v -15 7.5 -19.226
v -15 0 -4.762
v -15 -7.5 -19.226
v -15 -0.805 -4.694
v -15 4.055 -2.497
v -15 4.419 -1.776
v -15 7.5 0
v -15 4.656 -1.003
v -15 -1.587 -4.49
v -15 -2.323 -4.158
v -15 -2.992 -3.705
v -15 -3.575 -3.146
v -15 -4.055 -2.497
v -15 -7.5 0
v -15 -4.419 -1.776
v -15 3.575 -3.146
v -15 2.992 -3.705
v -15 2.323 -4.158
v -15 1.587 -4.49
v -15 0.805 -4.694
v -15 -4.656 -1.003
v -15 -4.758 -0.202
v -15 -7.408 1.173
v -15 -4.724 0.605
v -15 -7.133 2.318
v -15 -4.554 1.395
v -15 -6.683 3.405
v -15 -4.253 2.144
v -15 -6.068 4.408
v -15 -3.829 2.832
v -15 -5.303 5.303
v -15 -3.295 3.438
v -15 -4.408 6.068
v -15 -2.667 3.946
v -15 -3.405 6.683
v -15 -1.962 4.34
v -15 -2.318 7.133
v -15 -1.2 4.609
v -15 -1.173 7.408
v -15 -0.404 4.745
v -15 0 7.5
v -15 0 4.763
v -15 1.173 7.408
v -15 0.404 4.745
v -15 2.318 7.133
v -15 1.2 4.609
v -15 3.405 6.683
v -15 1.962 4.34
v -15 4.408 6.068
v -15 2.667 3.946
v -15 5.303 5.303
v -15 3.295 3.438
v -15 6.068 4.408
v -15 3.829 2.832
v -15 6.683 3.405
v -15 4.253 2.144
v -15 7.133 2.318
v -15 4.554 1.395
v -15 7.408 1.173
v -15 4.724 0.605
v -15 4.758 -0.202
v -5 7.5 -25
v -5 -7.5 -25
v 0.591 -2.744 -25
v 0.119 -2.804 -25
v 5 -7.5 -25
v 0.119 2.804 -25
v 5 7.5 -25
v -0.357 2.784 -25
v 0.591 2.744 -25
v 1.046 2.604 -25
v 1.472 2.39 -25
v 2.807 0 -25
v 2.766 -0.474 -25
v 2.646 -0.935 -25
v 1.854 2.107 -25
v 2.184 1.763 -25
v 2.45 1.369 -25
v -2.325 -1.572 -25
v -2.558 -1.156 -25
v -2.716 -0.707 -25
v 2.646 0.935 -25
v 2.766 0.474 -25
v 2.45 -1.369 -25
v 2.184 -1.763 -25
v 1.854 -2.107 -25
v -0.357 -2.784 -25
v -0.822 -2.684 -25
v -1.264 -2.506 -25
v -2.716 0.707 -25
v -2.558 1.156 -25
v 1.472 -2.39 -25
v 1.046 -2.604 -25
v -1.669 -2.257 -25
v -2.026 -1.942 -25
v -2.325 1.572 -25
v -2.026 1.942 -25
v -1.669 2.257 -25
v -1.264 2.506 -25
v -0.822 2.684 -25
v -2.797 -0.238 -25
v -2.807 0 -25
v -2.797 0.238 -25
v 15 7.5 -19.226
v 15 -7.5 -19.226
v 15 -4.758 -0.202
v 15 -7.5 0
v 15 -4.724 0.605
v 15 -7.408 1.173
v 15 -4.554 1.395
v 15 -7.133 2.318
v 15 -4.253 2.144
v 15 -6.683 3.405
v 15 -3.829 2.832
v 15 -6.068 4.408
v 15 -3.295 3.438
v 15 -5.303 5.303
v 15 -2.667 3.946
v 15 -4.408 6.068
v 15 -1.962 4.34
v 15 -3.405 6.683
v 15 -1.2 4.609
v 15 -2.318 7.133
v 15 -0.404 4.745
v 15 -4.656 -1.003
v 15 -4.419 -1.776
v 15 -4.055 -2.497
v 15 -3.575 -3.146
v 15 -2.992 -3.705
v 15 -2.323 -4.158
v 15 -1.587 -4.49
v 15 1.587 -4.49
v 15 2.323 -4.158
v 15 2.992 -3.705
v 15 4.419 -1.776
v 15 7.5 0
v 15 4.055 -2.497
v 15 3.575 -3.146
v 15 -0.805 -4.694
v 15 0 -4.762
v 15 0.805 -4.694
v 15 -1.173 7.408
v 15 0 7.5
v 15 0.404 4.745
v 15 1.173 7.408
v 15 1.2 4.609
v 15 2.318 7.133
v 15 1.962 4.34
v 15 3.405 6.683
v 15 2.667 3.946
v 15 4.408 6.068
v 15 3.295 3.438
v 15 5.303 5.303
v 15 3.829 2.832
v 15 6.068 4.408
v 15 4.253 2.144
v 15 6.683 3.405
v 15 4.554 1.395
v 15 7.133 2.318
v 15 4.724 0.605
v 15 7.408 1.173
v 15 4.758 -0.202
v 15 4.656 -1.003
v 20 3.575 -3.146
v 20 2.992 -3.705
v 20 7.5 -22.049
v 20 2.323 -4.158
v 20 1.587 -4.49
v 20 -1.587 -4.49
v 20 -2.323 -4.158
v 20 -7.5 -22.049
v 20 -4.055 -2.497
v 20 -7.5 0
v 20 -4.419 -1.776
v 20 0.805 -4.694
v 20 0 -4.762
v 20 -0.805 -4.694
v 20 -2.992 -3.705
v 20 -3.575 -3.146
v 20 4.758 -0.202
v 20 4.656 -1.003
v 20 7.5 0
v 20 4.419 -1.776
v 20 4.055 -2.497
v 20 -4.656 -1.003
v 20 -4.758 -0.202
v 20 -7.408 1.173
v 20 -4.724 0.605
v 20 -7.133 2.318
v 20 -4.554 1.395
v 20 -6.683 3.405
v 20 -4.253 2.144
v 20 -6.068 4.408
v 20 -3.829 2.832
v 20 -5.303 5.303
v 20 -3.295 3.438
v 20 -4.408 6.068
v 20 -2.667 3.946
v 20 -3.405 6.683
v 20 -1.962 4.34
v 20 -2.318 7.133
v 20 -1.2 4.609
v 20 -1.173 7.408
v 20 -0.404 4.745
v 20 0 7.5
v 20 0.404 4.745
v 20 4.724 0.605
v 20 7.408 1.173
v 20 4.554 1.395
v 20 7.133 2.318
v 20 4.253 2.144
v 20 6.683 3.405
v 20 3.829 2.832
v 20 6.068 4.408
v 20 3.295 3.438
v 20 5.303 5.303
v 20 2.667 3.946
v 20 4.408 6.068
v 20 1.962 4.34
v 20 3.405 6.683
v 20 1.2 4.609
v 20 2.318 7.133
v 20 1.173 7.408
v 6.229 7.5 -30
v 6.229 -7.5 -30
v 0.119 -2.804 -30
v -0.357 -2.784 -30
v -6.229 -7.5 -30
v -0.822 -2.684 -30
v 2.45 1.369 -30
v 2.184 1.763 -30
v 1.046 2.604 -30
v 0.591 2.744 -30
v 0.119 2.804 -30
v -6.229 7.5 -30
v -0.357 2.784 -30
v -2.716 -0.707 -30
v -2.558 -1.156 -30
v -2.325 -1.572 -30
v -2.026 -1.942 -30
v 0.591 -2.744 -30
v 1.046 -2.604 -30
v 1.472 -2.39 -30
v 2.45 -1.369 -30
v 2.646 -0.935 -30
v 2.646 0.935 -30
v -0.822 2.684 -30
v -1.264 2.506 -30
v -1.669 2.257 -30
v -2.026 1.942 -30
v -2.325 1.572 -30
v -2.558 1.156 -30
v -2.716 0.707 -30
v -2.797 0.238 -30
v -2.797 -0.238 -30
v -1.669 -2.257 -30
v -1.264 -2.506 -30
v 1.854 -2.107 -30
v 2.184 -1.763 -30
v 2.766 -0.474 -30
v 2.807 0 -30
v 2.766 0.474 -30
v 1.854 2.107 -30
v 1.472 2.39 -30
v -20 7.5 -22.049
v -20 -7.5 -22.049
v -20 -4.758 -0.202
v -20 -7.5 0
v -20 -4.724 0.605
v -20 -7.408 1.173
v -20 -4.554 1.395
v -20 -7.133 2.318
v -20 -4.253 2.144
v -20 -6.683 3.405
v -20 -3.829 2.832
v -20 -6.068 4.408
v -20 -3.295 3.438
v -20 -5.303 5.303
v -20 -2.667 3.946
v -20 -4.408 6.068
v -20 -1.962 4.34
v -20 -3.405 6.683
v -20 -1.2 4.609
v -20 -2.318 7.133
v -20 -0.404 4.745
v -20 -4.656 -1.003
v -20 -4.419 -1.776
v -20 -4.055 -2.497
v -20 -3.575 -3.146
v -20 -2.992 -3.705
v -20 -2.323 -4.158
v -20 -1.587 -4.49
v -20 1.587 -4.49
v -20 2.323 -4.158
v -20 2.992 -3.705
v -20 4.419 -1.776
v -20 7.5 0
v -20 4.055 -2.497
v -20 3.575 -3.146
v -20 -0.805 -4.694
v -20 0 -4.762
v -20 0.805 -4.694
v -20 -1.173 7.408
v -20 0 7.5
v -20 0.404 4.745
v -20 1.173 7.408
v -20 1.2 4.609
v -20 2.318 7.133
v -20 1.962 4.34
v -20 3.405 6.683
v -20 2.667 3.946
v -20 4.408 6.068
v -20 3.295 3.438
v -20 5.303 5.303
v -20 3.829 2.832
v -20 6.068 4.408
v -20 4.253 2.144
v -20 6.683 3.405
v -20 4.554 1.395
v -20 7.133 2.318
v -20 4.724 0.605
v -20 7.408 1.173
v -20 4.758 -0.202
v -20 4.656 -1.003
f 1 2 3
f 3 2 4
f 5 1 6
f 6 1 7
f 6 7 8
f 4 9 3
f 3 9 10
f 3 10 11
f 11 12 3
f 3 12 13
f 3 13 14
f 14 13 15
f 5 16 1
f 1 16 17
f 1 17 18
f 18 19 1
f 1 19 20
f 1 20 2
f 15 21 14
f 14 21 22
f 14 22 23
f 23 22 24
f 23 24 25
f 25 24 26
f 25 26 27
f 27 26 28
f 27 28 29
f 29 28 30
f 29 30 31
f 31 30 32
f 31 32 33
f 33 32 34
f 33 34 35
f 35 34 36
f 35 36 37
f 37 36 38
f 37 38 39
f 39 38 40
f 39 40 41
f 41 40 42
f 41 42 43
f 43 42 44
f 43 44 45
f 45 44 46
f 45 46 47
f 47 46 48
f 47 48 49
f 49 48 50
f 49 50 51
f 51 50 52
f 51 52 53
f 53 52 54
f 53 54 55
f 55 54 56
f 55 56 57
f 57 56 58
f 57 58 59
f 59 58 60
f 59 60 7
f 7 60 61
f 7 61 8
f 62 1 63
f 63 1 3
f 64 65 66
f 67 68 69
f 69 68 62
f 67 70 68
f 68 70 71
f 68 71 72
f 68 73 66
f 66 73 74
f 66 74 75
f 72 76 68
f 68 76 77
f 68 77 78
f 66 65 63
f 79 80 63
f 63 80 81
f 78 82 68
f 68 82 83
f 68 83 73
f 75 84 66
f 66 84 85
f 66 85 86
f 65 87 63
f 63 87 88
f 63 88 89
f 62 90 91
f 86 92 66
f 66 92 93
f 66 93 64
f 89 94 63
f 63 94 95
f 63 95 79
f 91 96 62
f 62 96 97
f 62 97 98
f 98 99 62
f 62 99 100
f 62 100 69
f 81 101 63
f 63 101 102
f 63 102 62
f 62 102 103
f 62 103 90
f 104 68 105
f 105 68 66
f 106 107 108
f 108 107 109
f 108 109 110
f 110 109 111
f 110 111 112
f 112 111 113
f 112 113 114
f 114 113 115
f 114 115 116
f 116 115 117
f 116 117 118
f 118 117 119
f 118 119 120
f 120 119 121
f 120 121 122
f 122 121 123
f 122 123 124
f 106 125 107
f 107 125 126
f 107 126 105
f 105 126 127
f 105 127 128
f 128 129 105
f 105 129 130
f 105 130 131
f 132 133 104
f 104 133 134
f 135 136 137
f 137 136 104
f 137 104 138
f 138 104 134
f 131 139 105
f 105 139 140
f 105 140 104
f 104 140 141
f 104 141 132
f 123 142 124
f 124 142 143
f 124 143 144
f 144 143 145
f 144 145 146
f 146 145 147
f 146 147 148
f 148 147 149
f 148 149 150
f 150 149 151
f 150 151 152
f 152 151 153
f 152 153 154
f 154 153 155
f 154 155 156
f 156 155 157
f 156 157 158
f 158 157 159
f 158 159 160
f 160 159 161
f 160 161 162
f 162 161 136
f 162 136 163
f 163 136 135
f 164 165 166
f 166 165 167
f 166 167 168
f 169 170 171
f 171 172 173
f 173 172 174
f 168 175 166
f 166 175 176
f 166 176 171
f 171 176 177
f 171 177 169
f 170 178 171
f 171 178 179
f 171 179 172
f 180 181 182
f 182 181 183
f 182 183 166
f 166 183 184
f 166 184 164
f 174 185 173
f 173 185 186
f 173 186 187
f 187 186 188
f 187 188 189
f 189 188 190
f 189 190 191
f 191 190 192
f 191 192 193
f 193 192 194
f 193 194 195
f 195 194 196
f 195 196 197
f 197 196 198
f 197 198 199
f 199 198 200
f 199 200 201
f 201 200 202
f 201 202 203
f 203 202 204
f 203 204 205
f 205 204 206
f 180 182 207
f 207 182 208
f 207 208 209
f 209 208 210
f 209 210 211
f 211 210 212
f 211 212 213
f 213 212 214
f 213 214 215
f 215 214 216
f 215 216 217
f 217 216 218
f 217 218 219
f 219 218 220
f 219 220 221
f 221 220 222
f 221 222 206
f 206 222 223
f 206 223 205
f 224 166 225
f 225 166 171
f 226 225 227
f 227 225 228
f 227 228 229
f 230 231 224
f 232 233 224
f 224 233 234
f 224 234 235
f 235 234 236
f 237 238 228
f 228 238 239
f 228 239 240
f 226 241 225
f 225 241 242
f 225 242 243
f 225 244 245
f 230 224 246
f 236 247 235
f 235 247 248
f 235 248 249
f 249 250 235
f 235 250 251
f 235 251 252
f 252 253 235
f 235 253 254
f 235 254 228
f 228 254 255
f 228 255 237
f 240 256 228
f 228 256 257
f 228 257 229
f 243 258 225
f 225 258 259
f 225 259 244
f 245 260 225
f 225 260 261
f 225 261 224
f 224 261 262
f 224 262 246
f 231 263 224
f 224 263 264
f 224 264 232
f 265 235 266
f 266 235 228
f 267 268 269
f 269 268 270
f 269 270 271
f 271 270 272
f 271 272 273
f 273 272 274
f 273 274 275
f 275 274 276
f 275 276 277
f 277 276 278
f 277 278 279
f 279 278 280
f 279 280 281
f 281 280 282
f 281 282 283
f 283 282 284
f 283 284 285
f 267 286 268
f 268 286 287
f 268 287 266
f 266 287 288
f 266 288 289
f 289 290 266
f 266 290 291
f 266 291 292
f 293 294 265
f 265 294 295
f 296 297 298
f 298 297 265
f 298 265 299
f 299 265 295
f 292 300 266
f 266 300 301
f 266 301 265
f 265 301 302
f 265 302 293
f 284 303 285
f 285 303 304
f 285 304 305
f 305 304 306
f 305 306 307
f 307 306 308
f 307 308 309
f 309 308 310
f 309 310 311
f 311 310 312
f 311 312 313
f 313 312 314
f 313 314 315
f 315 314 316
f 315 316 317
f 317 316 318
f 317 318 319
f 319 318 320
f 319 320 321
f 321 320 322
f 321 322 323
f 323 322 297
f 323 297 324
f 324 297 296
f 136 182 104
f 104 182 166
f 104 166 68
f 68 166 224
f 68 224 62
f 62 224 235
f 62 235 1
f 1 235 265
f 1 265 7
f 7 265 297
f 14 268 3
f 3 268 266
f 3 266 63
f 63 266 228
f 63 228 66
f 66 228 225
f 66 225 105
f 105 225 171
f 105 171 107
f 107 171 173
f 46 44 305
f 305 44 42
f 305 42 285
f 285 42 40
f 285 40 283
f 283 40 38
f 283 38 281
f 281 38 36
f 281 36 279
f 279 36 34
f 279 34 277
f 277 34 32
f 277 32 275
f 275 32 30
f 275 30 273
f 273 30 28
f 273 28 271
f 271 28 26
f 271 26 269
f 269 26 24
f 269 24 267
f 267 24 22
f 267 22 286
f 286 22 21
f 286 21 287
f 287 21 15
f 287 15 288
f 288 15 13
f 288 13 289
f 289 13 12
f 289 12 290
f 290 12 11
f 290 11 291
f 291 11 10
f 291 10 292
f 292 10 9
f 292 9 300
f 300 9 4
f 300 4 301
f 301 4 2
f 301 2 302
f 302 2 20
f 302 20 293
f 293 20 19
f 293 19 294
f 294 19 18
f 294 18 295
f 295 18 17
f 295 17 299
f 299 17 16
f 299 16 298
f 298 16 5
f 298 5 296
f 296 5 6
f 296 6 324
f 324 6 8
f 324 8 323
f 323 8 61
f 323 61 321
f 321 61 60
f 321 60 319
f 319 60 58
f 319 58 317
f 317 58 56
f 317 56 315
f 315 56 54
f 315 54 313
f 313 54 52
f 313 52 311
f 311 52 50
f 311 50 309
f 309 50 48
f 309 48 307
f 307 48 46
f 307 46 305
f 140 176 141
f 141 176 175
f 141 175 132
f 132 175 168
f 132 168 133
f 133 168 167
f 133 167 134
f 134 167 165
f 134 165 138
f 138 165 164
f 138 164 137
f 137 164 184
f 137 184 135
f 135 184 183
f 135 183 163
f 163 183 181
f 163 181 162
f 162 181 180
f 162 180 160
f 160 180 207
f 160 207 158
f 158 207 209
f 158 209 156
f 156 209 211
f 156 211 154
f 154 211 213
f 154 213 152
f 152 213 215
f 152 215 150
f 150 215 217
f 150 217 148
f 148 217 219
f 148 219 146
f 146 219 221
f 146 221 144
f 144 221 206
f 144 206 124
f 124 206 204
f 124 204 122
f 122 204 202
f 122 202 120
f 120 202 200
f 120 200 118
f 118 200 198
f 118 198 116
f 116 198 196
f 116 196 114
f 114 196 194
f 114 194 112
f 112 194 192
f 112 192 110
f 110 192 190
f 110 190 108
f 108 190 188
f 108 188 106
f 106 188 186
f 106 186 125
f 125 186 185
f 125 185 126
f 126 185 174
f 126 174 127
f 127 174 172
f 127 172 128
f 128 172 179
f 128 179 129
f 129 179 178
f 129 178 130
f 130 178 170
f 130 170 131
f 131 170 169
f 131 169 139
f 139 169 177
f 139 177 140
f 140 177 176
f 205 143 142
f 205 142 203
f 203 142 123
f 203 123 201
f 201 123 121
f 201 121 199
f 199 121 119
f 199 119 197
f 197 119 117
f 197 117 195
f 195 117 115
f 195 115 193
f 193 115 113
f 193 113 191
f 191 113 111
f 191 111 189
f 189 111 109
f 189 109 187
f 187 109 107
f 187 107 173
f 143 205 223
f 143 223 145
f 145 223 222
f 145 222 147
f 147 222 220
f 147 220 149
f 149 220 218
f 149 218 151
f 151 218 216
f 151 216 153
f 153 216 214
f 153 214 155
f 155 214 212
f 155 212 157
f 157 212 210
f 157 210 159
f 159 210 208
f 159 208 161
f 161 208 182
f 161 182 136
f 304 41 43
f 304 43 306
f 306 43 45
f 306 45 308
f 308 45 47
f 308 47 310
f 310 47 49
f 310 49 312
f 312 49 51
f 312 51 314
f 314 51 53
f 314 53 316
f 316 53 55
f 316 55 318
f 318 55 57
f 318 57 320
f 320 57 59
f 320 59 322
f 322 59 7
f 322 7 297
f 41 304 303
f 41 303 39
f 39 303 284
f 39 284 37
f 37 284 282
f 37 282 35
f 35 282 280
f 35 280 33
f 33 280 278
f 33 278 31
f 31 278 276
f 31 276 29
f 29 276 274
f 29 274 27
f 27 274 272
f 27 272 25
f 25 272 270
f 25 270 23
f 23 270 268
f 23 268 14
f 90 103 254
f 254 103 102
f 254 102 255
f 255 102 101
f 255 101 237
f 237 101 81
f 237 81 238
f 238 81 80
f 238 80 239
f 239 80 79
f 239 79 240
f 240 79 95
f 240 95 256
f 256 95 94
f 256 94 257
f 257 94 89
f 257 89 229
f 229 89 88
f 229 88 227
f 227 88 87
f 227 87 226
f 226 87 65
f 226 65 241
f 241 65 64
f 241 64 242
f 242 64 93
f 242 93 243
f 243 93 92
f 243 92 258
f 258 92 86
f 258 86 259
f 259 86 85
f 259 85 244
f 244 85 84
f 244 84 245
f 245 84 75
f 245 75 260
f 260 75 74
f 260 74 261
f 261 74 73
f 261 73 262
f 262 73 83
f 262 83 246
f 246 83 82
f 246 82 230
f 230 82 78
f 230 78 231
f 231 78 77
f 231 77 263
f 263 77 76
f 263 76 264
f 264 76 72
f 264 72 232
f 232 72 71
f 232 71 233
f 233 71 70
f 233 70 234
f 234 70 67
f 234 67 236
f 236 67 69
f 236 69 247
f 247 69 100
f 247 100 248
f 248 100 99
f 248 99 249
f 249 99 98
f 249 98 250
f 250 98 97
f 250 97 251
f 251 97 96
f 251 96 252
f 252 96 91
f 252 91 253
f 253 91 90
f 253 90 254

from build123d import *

# Parameters (mm, degrees)
BOSS_EXTRUDE1_DEPTH     = 7.5
CUT_EXTRUDE1_DEPTH      = 37.827299657
CUT_EXTRUDE1_DEPTH_BACK = 37.827299657
SKETCH3_R               = 4.7625
FILLET1_R               = 7.5
SKETCH4_R               = 2.8067
CUT_EXTRUDE2_DEPTH      = 37.827299657


with BuildPart() as part:
    # Sketch1 → Boss-Extrude1 (new, symmetric)
    with BuildSketch(Plane(origin=(0, 0, 0), x_dir=(1, 0, 0), z_dir=(0, 1, 0))):
        Polygon((-15, -7.5), (-20, -7.5), (-20, 22.049394585), (-6.22914747, 30), (6.22914747, 30), (20, 22.049394585), (20, -7.5), (15, -7.5), (15, 19.226497308), (5, 25), (-5, 25), (-15, 19.226497308), align=None)
    extrude(amount=BOSS_EXTRUDE1_DEPTH, both=True)

    # Sketch3 → Cut-Extrude1 (cut, two sides: drawn at the far end of the back side and taken through both)
    with BuildSketch(Plane(origin=(0, 0, 0), x_dir=(0, 0, -1), z_dir=(1, 0, 0)).offset(-CUT_EXTRUDE1_DEPTH_BACK)):
        Circle(SKETCH3_R)
    extrude(amount=CUT_EXTRUDE1_DEPTH + CUT_EXTRUDE1_DEPTH_BACK, mode=Mode.SUBTRACT)

    # Fillet1
    fillet1_edges = [part.edges().sort_by_distance(p)[0] for p in [
        (17.5, 7.5, 7.5),
        (17.5, -7.5, 7.5),
        (-17.5, -7.5, 7.5),
        (-17.5, 7.5, 7.5),
    ]]
    fillet(fillet1_edges, radius=FILLET1_R - 0.0001)  # a hair under: the kernel refuses the full size

    # Sketch4 → Cut-Extrude2 (cut, through all)
    with BuildSketch(Plane.XY):
        Circle(SKETCH4_R)
    extrude(amount=-CUT_EXTRUDE2_DEPTH, mode=Mode.SUBTRACT)


solid = part.part
